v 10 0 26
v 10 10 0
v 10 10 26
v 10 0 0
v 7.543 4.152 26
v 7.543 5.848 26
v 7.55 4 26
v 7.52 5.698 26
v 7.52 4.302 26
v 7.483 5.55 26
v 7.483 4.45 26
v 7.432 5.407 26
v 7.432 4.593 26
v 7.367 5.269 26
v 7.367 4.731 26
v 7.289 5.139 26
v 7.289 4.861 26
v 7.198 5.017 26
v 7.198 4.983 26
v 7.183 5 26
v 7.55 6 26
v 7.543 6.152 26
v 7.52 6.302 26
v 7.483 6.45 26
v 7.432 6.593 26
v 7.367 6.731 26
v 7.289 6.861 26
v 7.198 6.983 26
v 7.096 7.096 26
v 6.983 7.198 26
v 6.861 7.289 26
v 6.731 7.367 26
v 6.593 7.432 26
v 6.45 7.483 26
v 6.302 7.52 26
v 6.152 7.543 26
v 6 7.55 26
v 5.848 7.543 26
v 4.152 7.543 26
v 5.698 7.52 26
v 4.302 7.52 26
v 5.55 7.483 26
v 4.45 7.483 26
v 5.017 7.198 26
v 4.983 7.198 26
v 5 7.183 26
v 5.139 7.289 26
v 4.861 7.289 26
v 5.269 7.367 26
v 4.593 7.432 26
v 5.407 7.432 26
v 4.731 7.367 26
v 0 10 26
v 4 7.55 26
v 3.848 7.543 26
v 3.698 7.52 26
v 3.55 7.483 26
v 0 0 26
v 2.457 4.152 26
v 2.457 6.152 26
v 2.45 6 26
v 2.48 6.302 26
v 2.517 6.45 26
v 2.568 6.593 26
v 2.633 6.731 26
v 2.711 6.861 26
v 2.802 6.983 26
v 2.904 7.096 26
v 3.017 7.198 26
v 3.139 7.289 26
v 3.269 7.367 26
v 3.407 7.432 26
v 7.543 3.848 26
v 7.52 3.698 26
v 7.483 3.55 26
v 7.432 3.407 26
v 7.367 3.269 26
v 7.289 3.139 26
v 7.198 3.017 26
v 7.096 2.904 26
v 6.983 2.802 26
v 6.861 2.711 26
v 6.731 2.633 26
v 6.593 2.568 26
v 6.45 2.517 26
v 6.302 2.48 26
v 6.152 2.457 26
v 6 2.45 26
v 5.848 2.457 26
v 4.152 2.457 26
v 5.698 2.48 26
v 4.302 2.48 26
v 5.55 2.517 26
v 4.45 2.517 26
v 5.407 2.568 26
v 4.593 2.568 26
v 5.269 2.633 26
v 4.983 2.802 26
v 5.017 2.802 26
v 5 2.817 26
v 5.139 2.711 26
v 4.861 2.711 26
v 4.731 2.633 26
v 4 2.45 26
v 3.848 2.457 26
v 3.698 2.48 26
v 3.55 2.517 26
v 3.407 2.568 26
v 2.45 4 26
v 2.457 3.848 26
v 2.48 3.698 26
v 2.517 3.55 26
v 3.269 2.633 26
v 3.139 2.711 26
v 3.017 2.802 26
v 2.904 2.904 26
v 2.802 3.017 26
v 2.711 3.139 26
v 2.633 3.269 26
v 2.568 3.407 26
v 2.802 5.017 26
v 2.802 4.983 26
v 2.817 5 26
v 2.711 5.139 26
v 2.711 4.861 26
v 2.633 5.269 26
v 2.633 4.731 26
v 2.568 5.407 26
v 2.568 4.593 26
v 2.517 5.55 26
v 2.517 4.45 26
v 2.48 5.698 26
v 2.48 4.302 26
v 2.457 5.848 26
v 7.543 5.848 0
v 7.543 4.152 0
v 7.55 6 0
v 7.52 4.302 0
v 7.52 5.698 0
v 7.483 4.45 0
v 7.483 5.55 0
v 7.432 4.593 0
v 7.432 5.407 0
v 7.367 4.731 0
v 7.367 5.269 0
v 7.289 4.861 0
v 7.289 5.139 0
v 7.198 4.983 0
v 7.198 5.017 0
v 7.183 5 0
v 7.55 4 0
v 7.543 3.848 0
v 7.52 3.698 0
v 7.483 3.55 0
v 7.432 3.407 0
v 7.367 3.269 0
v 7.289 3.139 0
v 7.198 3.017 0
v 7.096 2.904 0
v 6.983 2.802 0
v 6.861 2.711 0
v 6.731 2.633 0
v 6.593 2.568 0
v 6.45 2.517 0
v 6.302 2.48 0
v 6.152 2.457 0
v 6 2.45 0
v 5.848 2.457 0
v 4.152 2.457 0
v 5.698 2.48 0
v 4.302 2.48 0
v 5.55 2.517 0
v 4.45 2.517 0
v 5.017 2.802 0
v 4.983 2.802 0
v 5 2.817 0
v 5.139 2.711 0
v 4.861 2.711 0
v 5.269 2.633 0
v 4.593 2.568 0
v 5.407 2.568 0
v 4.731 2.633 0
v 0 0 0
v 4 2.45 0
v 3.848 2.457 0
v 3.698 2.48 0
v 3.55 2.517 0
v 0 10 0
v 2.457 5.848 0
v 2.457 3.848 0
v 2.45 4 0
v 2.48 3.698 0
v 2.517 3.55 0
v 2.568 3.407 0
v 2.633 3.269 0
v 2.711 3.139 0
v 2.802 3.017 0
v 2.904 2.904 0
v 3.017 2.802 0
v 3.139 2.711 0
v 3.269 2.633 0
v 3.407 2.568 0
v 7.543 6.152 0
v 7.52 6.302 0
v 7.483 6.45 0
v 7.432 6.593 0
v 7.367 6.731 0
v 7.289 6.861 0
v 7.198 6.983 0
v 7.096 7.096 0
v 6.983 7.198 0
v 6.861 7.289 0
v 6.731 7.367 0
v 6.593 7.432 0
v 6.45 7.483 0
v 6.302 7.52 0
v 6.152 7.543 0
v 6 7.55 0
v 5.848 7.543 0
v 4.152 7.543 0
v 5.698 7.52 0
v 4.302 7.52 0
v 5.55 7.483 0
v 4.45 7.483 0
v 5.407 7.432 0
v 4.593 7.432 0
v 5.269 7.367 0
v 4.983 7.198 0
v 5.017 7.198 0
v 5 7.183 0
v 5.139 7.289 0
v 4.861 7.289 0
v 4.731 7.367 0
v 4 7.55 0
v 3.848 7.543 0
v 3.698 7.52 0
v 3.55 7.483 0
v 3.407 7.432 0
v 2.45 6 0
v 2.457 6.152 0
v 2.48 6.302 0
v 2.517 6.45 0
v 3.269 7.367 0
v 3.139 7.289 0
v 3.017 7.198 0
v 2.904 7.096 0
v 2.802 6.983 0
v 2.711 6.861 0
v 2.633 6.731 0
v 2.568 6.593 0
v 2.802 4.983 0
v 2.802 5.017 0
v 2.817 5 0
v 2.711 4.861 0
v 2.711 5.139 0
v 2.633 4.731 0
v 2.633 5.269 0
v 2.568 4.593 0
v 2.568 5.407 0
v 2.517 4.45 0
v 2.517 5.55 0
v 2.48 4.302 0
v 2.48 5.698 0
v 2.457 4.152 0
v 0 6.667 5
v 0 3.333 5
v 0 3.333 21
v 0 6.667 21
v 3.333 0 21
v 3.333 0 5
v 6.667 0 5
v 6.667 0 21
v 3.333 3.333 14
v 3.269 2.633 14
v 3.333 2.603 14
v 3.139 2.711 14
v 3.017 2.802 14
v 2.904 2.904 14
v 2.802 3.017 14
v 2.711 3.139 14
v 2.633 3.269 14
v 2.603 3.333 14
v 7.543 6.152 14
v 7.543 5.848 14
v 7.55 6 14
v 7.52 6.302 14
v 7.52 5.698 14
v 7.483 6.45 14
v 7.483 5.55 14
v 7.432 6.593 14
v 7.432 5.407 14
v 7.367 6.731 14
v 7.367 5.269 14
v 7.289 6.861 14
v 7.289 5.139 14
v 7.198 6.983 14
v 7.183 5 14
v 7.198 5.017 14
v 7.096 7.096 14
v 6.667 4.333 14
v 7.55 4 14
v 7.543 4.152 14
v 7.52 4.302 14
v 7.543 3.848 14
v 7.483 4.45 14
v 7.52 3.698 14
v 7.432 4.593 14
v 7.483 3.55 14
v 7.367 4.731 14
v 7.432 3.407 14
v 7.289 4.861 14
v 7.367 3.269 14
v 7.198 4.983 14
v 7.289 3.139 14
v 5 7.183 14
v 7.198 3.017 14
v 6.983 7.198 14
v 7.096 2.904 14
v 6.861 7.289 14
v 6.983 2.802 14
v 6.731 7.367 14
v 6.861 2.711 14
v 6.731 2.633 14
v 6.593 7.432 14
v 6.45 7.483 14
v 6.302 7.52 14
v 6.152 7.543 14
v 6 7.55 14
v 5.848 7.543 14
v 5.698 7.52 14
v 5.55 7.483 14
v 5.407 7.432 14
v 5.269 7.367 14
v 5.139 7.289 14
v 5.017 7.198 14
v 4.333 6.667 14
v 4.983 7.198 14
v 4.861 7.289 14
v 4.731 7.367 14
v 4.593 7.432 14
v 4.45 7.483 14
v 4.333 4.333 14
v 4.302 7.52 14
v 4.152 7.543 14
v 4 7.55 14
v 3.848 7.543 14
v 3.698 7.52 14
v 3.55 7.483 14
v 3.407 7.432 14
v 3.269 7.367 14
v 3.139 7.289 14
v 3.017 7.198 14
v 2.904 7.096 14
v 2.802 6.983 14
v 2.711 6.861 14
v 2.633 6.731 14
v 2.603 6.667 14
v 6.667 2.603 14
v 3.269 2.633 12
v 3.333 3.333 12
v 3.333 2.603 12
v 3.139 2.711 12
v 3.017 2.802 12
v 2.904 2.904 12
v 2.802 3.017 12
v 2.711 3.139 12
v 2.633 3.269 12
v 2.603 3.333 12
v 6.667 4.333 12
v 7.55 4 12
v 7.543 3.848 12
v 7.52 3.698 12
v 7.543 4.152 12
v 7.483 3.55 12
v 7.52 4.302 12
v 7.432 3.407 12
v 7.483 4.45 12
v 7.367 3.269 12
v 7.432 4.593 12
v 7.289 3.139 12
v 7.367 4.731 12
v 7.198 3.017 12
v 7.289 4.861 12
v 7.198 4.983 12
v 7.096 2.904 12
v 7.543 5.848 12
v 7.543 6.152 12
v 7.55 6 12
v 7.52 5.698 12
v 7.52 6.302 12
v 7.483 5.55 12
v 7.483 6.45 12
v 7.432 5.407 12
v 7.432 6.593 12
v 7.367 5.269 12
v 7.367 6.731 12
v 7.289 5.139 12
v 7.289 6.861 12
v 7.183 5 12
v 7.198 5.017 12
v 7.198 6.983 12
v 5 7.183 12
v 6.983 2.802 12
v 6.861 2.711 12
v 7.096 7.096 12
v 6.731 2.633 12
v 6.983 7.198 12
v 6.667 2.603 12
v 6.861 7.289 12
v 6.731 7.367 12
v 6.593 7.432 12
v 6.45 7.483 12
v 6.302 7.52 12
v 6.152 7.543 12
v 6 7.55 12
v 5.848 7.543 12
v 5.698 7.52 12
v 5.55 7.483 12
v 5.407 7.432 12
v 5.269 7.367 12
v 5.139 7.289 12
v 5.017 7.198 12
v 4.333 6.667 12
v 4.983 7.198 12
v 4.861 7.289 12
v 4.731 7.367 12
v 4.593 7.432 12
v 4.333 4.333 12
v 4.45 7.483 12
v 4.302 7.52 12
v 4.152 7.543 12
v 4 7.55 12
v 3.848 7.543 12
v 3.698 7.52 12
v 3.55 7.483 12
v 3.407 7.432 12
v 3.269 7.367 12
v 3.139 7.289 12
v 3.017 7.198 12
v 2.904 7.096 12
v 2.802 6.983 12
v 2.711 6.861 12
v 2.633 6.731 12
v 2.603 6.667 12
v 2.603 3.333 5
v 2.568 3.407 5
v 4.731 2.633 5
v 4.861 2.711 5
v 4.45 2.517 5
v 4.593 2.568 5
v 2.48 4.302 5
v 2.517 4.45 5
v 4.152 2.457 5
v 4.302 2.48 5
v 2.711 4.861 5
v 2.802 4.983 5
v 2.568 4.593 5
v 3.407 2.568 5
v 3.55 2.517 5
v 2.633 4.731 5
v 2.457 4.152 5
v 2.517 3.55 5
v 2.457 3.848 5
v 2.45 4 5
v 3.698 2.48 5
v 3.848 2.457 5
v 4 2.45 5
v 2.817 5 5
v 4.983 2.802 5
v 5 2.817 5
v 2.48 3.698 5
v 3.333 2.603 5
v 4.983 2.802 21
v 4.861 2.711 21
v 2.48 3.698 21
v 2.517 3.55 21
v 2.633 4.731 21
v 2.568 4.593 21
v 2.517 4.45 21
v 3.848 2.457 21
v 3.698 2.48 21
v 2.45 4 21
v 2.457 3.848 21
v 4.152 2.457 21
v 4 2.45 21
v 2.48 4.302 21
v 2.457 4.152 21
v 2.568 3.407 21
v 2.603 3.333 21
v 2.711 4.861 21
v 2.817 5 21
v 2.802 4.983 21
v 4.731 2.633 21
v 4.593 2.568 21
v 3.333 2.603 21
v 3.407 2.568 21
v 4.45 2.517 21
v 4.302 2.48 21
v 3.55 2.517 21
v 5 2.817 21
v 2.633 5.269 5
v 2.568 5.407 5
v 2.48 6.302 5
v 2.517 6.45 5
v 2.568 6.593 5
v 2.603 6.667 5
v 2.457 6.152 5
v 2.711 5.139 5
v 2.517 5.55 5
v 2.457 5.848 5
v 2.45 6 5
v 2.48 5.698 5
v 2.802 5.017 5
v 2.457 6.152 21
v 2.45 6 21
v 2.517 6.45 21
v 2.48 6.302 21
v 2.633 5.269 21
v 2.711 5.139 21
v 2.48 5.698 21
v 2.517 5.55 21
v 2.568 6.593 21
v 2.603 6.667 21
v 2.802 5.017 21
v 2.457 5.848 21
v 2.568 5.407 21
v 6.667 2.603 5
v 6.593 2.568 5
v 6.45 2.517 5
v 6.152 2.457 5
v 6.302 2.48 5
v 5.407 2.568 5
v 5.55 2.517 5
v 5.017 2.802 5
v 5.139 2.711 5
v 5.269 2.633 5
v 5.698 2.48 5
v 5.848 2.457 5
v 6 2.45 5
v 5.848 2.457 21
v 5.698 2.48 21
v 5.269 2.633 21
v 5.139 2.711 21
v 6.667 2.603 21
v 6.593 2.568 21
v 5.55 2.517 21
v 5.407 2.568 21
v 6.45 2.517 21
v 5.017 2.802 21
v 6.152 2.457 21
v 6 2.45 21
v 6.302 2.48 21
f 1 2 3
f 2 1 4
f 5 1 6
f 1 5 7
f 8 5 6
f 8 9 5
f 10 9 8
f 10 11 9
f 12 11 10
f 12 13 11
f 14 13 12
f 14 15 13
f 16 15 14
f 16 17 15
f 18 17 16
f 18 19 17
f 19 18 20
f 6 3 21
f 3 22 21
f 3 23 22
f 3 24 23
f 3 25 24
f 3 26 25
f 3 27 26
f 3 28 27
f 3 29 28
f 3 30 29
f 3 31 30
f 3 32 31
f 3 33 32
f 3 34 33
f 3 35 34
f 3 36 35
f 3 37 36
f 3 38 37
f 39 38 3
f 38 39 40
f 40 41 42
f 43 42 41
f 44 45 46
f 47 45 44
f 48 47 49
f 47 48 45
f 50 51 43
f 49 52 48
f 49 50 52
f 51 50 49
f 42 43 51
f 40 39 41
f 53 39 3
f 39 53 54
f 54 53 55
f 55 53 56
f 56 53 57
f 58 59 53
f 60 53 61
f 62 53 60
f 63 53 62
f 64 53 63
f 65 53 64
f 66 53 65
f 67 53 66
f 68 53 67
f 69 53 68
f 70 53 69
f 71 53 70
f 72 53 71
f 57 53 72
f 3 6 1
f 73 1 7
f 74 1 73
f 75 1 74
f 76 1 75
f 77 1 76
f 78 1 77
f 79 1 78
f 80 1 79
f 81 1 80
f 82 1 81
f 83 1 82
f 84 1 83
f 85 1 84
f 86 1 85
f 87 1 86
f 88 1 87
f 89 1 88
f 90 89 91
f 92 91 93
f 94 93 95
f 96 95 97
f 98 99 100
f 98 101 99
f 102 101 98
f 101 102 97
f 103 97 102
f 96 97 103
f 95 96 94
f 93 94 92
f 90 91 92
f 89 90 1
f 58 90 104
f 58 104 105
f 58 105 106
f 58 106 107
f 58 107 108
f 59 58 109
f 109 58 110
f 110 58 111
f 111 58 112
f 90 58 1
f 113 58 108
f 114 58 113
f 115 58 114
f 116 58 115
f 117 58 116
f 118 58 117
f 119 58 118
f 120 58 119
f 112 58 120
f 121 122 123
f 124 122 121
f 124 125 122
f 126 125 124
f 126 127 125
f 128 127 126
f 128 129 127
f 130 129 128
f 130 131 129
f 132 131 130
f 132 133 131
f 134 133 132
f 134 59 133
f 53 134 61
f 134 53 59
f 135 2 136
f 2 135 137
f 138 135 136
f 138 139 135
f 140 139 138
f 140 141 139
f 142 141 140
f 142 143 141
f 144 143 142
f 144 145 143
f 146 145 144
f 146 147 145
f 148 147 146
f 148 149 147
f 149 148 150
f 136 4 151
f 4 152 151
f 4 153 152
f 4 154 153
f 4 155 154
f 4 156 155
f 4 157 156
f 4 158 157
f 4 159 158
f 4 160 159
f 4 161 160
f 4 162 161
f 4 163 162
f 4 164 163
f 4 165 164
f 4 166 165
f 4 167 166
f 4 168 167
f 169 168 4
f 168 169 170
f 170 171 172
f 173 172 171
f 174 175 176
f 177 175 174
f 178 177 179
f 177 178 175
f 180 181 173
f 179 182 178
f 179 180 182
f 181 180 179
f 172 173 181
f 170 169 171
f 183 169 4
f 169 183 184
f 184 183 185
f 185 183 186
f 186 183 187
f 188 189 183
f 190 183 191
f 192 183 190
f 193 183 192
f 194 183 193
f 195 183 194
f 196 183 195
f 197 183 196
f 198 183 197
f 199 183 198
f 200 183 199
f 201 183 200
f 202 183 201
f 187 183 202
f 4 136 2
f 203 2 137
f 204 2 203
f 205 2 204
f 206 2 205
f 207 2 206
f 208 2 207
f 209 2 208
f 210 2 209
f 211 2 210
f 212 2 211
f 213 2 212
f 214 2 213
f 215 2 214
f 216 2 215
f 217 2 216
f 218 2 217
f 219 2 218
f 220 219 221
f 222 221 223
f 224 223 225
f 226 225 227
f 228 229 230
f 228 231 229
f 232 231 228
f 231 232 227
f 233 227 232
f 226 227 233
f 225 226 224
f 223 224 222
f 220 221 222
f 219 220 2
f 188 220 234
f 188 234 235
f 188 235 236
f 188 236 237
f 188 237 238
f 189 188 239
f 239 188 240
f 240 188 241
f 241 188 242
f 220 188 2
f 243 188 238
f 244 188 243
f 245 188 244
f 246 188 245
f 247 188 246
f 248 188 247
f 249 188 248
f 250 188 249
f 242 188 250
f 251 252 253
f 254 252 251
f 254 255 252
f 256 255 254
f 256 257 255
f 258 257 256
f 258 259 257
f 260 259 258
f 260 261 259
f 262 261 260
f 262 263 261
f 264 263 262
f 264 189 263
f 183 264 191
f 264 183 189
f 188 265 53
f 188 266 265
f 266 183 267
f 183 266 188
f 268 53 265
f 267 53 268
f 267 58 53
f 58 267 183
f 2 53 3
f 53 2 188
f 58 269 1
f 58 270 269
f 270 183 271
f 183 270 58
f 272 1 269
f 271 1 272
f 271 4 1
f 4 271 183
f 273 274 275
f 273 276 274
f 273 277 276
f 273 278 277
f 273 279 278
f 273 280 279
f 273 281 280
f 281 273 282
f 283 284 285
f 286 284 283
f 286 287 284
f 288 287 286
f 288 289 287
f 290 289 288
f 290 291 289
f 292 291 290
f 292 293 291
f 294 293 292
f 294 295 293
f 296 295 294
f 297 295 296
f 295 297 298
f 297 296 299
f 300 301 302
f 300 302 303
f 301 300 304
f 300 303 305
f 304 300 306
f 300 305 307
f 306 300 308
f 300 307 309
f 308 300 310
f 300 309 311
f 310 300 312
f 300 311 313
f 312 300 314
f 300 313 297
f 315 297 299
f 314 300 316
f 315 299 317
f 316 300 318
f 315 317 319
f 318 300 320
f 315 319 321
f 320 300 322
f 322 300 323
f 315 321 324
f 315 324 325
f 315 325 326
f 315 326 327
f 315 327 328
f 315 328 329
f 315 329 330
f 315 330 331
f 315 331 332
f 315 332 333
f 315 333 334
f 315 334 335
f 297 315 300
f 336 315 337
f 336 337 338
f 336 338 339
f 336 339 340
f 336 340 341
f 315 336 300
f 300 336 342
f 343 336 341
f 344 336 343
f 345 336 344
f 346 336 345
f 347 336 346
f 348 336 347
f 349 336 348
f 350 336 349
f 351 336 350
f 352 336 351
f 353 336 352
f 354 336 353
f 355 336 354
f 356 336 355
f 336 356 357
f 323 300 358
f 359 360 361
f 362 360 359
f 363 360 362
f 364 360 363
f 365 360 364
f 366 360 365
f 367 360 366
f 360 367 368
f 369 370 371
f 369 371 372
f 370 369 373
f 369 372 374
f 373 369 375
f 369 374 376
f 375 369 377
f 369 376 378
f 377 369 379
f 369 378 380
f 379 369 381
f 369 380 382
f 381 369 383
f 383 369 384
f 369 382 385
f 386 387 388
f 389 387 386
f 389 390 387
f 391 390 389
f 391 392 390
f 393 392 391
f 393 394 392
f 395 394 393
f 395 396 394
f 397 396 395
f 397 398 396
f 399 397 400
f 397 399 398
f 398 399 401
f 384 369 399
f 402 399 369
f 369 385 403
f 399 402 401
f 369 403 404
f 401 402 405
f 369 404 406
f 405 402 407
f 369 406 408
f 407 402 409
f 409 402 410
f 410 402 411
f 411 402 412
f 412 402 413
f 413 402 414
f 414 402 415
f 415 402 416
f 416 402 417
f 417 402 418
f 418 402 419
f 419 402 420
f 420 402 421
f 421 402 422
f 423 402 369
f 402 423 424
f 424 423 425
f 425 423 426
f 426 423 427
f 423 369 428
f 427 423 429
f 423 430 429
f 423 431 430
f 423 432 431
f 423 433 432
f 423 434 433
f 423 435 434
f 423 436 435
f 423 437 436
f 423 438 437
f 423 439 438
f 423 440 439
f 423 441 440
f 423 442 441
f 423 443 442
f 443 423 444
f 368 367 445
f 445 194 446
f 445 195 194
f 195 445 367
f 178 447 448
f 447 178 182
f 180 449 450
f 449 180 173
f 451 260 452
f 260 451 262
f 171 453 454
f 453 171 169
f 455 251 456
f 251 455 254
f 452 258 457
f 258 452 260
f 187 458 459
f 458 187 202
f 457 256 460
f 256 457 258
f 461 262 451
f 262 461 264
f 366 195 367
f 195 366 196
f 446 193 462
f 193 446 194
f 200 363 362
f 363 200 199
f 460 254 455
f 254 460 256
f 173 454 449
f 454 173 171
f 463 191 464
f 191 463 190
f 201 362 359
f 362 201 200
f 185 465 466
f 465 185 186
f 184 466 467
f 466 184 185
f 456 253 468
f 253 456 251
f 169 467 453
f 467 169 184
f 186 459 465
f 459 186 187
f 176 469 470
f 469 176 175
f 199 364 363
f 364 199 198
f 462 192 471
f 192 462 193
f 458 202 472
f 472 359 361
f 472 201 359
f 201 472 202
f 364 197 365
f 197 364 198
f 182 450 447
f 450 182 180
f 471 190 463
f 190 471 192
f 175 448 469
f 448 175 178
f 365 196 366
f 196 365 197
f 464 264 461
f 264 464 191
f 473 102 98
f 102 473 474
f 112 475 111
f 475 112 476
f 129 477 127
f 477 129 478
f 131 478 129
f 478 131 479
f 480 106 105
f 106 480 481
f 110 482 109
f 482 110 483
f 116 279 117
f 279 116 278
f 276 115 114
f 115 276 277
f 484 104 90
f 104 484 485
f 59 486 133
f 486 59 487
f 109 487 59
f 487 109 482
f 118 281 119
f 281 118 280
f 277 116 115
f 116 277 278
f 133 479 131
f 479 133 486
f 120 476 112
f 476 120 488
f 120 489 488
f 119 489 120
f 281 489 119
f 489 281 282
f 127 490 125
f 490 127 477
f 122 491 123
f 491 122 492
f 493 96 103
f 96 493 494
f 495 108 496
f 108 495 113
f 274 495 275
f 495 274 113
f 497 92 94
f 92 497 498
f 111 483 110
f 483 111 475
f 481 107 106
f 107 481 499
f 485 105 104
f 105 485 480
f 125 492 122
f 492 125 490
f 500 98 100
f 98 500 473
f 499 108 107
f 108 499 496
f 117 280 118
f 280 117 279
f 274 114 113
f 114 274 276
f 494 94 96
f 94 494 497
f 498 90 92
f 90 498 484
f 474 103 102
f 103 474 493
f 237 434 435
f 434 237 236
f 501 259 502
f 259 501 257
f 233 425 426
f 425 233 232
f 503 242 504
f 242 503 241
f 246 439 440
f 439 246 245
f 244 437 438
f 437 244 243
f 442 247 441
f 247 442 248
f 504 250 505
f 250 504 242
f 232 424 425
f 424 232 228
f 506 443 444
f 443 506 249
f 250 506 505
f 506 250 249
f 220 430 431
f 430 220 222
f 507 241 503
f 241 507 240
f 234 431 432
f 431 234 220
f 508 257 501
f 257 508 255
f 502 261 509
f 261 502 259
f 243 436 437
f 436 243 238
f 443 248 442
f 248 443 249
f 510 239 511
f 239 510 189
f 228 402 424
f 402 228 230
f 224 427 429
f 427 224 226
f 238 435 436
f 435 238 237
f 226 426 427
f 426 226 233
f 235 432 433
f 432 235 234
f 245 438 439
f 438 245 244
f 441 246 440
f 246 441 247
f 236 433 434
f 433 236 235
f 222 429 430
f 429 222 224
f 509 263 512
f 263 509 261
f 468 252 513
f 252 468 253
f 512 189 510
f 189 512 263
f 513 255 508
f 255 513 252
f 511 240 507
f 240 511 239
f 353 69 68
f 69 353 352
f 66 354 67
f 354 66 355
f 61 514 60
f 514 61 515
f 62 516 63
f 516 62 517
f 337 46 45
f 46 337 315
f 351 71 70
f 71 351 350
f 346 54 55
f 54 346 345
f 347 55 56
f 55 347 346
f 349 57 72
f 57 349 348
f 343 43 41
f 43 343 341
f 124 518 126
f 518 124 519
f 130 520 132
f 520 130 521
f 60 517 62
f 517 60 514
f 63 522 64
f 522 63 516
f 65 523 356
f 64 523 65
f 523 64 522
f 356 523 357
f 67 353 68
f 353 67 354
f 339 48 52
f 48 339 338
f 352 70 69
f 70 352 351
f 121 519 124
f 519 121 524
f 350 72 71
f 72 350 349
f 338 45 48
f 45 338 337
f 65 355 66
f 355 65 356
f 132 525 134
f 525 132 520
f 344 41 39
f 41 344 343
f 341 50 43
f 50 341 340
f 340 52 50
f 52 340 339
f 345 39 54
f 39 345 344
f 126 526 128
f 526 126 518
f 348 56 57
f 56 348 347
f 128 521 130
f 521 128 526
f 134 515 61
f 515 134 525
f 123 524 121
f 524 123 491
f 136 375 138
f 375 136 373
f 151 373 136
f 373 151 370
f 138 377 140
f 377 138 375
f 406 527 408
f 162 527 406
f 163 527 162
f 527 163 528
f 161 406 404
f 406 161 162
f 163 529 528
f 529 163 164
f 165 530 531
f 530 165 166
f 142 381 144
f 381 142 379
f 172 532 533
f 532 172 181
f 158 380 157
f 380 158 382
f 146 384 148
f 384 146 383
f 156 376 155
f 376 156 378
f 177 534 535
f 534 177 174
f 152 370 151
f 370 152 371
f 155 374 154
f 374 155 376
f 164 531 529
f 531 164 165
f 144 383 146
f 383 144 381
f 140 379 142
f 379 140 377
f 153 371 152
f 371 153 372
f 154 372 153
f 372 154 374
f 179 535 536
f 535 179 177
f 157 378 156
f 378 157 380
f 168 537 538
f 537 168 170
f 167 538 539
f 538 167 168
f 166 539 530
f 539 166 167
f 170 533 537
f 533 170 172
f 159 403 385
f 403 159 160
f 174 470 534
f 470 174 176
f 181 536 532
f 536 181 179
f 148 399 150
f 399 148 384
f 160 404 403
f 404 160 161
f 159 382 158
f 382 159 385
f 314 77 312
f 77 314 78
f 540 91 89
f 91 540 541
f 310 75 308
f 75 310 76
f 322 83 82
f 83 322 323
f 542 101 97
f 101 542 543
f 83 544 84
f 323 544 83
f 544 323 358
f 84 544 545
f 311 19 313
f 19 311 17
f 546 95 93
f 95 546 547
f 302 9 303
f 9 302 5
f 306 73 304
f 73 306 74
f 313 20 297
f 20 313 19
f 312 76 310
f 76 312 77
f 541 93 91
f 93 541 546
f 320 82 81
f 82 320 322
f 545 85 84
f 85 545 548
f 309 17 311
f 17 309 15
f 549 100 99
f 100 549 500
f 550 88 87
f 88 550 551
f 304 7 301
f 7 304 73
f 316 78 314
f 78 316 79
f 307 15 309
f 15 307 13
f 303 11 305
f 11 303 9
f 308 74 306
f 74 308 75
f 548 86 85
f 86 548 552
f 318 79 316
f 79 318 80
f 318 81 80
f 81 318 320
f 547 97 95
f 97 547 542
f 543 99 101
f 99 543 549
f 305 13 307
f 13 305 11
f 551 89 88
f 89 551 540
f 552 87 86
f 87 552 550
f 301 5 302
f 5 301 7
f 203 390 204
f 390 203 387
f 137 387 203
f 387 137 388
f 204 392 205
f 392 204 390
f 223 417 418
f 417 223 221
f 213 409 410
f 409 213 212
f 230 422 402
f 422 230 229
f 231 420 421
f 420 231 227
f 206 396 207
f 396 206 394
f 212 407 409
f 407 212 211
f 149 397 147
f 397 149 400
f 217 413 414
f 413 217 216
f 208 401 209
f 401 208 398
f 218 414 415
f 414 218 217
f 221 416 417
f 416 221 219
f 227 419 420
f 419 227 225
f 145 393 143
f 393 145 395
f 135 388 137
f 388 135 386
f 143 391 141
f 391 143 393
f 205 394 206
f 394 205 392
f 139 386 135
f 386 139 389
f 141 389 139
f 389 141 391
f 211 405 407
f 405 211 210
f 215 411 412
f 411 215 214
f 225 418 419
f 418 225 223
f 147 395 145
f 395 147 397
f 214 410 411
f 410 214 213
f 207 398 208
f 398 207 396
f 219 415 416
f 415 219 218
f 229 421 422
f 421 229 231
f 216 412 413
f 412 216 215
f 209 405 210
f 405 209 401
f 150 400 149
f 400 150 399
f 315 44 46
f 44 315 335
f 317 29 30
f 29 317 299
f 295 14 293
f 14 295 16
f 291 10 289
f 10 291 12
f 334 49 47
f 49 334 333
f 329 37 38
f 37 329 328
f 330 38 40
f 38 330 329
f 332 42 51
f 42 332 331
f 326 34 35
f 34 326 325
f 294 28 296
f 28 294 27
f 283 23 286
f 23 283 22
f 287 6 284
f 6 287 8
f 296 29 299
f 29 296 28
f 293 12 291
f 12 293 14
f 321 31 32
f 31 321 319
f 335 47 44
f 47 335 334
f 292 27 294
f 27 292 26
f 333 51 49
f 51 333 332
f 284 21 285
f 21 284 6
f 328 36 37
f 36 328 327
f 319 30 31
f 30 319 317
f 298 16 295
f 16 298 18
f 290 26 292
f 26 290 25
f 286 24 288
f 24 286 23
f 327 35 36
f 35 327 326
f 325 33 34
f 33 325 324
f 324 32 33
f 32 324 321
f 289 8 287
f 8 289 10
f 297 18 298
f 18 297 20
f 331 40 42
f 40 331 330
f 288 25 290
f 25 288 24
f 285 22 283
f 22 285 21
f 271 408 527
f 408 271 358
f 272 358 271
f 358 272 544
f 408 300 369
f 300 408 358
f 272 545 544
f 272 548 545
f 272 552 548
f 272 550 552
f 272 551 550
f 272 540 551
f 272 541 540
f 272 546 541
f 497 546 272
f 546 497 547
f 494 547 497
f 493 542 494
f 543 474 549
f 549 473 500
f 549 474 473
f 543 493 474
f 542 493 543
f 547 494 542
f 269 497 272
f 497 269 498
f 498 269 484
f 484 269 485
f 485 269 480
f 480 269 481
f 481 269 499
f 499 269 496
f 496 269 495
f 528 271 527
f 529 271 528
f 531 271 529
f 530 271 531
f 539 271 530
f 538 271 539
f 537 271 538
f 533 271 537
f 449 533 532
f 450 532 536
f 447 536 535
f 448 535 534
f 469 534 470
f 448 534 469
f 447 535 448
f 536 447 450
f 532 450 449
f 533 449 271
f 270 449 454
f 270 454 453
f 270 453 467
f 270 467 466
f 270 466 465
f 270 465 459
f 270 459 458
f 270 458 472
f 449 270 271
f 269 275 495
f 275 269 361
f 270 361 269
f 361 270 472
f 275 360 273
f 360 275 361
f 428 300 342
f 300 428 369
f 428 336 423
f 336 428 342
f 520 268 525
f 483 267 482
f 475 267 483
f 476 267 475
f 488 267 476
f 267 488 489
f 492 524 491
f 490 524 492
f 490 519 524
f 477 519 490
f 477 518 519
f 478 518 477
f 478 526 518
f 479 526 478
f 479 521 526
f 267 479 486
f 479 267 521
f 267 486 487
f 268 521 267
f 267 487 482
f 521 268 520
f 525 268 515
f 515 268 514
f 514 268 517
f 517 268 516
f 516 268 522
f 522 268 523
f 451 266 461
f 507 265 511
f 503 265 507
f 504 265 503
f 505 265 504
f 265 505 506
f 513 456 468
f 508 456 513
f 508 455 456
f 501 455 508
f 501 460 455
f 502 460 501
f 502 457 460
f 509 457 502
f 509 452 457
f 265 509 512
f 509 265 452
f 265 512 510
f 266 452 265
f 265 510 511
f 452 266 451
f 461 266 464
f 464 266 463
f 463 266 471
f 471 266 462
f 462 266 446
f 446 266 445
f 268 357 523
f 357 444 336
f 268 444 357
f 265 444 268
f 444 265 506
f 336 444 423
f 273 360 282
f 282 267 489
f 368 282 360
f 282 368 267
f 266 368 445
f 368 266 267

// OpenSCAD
difference(){difference(){difference(){difference(){difference(){difference(){difference(){difference(){difference(){difference(){difference(){difference(){difference(){difference(){difference(){difference(){difference(){difference(){translate([0, 0, 0])cube([10, 10,26]);translate([4, 4, 26.0])rotate([0, 180, 0])cylinder(r=1.0, h=12, $fn=64);translate([4, 4, 0.0])rotate([0, 0, 0])cylinder(r=1.5, h=12, $fn=64);translate([4, 4, 0.0])rotate([0, 0, 0])cylinder(r=1.55, h=12, $fn=64);translate([4, 4, 26.0])rotate([0, 180, 0])cylinder(r=1.55, h=12, $fn=64);translate([4, 6, 26.0])rotate([0, 180, 0])cylinder(r=1.0, h=12, $fn=64);translate([4, 6, 0.0])rotate([0, 0, 0])cylinder(r=1.5, h=12, $fn=64);translate([4, 6, 0.0])rotate([0, 0, 0])cylinder(r=1.55, h=12, $fn=64);translate([4, 6, 26.0])rotate([0, 180, 0])cylinder(r=1.55, h=12, $fn=64);translate([6, 4, 26.0])rotate([0, 180, 0])cylinder(r=1.0, h=12, $fn=64);translate([6, 4, 0.0])rotate([0, 0, 0])cylinder(r=1.5, h=12, $fn=64);translate([6, 4, 0.0])rotate([0, 0, 0])cylinder(r=1.55, h=12, $fn=64);translate([6, 4, 26.0])rotate([0, 180, 0])cylinder(r=1.55, h=12, $fn=64);translate([6, 6, 26.0])rotate([0, 180, 0])cylinder(r=1.0, h=12, $fn=64);translate([6, 6, 0.0])rotate([0, 0, 0])cylinder(r=1.5, h=12, $fn=64);translate([6, 6, 0.0])rotate([0, 0, 0])cylinder(r=1.55, h=12, $fn=64);translate([6, 6, 26.0])rotate([0, 180, 0])cylinder(r=1.55, h=12, $fn=64);translate([3.3333333333333335, -1, 5])cube([3.3333333333333335, 5.333333333333334,16]);translate([-1, 3.3333333333333335, 5])cube([5.333333333333334, 3.3333333333333335,16]);}}}}}}}}}}}}}}}}}}
